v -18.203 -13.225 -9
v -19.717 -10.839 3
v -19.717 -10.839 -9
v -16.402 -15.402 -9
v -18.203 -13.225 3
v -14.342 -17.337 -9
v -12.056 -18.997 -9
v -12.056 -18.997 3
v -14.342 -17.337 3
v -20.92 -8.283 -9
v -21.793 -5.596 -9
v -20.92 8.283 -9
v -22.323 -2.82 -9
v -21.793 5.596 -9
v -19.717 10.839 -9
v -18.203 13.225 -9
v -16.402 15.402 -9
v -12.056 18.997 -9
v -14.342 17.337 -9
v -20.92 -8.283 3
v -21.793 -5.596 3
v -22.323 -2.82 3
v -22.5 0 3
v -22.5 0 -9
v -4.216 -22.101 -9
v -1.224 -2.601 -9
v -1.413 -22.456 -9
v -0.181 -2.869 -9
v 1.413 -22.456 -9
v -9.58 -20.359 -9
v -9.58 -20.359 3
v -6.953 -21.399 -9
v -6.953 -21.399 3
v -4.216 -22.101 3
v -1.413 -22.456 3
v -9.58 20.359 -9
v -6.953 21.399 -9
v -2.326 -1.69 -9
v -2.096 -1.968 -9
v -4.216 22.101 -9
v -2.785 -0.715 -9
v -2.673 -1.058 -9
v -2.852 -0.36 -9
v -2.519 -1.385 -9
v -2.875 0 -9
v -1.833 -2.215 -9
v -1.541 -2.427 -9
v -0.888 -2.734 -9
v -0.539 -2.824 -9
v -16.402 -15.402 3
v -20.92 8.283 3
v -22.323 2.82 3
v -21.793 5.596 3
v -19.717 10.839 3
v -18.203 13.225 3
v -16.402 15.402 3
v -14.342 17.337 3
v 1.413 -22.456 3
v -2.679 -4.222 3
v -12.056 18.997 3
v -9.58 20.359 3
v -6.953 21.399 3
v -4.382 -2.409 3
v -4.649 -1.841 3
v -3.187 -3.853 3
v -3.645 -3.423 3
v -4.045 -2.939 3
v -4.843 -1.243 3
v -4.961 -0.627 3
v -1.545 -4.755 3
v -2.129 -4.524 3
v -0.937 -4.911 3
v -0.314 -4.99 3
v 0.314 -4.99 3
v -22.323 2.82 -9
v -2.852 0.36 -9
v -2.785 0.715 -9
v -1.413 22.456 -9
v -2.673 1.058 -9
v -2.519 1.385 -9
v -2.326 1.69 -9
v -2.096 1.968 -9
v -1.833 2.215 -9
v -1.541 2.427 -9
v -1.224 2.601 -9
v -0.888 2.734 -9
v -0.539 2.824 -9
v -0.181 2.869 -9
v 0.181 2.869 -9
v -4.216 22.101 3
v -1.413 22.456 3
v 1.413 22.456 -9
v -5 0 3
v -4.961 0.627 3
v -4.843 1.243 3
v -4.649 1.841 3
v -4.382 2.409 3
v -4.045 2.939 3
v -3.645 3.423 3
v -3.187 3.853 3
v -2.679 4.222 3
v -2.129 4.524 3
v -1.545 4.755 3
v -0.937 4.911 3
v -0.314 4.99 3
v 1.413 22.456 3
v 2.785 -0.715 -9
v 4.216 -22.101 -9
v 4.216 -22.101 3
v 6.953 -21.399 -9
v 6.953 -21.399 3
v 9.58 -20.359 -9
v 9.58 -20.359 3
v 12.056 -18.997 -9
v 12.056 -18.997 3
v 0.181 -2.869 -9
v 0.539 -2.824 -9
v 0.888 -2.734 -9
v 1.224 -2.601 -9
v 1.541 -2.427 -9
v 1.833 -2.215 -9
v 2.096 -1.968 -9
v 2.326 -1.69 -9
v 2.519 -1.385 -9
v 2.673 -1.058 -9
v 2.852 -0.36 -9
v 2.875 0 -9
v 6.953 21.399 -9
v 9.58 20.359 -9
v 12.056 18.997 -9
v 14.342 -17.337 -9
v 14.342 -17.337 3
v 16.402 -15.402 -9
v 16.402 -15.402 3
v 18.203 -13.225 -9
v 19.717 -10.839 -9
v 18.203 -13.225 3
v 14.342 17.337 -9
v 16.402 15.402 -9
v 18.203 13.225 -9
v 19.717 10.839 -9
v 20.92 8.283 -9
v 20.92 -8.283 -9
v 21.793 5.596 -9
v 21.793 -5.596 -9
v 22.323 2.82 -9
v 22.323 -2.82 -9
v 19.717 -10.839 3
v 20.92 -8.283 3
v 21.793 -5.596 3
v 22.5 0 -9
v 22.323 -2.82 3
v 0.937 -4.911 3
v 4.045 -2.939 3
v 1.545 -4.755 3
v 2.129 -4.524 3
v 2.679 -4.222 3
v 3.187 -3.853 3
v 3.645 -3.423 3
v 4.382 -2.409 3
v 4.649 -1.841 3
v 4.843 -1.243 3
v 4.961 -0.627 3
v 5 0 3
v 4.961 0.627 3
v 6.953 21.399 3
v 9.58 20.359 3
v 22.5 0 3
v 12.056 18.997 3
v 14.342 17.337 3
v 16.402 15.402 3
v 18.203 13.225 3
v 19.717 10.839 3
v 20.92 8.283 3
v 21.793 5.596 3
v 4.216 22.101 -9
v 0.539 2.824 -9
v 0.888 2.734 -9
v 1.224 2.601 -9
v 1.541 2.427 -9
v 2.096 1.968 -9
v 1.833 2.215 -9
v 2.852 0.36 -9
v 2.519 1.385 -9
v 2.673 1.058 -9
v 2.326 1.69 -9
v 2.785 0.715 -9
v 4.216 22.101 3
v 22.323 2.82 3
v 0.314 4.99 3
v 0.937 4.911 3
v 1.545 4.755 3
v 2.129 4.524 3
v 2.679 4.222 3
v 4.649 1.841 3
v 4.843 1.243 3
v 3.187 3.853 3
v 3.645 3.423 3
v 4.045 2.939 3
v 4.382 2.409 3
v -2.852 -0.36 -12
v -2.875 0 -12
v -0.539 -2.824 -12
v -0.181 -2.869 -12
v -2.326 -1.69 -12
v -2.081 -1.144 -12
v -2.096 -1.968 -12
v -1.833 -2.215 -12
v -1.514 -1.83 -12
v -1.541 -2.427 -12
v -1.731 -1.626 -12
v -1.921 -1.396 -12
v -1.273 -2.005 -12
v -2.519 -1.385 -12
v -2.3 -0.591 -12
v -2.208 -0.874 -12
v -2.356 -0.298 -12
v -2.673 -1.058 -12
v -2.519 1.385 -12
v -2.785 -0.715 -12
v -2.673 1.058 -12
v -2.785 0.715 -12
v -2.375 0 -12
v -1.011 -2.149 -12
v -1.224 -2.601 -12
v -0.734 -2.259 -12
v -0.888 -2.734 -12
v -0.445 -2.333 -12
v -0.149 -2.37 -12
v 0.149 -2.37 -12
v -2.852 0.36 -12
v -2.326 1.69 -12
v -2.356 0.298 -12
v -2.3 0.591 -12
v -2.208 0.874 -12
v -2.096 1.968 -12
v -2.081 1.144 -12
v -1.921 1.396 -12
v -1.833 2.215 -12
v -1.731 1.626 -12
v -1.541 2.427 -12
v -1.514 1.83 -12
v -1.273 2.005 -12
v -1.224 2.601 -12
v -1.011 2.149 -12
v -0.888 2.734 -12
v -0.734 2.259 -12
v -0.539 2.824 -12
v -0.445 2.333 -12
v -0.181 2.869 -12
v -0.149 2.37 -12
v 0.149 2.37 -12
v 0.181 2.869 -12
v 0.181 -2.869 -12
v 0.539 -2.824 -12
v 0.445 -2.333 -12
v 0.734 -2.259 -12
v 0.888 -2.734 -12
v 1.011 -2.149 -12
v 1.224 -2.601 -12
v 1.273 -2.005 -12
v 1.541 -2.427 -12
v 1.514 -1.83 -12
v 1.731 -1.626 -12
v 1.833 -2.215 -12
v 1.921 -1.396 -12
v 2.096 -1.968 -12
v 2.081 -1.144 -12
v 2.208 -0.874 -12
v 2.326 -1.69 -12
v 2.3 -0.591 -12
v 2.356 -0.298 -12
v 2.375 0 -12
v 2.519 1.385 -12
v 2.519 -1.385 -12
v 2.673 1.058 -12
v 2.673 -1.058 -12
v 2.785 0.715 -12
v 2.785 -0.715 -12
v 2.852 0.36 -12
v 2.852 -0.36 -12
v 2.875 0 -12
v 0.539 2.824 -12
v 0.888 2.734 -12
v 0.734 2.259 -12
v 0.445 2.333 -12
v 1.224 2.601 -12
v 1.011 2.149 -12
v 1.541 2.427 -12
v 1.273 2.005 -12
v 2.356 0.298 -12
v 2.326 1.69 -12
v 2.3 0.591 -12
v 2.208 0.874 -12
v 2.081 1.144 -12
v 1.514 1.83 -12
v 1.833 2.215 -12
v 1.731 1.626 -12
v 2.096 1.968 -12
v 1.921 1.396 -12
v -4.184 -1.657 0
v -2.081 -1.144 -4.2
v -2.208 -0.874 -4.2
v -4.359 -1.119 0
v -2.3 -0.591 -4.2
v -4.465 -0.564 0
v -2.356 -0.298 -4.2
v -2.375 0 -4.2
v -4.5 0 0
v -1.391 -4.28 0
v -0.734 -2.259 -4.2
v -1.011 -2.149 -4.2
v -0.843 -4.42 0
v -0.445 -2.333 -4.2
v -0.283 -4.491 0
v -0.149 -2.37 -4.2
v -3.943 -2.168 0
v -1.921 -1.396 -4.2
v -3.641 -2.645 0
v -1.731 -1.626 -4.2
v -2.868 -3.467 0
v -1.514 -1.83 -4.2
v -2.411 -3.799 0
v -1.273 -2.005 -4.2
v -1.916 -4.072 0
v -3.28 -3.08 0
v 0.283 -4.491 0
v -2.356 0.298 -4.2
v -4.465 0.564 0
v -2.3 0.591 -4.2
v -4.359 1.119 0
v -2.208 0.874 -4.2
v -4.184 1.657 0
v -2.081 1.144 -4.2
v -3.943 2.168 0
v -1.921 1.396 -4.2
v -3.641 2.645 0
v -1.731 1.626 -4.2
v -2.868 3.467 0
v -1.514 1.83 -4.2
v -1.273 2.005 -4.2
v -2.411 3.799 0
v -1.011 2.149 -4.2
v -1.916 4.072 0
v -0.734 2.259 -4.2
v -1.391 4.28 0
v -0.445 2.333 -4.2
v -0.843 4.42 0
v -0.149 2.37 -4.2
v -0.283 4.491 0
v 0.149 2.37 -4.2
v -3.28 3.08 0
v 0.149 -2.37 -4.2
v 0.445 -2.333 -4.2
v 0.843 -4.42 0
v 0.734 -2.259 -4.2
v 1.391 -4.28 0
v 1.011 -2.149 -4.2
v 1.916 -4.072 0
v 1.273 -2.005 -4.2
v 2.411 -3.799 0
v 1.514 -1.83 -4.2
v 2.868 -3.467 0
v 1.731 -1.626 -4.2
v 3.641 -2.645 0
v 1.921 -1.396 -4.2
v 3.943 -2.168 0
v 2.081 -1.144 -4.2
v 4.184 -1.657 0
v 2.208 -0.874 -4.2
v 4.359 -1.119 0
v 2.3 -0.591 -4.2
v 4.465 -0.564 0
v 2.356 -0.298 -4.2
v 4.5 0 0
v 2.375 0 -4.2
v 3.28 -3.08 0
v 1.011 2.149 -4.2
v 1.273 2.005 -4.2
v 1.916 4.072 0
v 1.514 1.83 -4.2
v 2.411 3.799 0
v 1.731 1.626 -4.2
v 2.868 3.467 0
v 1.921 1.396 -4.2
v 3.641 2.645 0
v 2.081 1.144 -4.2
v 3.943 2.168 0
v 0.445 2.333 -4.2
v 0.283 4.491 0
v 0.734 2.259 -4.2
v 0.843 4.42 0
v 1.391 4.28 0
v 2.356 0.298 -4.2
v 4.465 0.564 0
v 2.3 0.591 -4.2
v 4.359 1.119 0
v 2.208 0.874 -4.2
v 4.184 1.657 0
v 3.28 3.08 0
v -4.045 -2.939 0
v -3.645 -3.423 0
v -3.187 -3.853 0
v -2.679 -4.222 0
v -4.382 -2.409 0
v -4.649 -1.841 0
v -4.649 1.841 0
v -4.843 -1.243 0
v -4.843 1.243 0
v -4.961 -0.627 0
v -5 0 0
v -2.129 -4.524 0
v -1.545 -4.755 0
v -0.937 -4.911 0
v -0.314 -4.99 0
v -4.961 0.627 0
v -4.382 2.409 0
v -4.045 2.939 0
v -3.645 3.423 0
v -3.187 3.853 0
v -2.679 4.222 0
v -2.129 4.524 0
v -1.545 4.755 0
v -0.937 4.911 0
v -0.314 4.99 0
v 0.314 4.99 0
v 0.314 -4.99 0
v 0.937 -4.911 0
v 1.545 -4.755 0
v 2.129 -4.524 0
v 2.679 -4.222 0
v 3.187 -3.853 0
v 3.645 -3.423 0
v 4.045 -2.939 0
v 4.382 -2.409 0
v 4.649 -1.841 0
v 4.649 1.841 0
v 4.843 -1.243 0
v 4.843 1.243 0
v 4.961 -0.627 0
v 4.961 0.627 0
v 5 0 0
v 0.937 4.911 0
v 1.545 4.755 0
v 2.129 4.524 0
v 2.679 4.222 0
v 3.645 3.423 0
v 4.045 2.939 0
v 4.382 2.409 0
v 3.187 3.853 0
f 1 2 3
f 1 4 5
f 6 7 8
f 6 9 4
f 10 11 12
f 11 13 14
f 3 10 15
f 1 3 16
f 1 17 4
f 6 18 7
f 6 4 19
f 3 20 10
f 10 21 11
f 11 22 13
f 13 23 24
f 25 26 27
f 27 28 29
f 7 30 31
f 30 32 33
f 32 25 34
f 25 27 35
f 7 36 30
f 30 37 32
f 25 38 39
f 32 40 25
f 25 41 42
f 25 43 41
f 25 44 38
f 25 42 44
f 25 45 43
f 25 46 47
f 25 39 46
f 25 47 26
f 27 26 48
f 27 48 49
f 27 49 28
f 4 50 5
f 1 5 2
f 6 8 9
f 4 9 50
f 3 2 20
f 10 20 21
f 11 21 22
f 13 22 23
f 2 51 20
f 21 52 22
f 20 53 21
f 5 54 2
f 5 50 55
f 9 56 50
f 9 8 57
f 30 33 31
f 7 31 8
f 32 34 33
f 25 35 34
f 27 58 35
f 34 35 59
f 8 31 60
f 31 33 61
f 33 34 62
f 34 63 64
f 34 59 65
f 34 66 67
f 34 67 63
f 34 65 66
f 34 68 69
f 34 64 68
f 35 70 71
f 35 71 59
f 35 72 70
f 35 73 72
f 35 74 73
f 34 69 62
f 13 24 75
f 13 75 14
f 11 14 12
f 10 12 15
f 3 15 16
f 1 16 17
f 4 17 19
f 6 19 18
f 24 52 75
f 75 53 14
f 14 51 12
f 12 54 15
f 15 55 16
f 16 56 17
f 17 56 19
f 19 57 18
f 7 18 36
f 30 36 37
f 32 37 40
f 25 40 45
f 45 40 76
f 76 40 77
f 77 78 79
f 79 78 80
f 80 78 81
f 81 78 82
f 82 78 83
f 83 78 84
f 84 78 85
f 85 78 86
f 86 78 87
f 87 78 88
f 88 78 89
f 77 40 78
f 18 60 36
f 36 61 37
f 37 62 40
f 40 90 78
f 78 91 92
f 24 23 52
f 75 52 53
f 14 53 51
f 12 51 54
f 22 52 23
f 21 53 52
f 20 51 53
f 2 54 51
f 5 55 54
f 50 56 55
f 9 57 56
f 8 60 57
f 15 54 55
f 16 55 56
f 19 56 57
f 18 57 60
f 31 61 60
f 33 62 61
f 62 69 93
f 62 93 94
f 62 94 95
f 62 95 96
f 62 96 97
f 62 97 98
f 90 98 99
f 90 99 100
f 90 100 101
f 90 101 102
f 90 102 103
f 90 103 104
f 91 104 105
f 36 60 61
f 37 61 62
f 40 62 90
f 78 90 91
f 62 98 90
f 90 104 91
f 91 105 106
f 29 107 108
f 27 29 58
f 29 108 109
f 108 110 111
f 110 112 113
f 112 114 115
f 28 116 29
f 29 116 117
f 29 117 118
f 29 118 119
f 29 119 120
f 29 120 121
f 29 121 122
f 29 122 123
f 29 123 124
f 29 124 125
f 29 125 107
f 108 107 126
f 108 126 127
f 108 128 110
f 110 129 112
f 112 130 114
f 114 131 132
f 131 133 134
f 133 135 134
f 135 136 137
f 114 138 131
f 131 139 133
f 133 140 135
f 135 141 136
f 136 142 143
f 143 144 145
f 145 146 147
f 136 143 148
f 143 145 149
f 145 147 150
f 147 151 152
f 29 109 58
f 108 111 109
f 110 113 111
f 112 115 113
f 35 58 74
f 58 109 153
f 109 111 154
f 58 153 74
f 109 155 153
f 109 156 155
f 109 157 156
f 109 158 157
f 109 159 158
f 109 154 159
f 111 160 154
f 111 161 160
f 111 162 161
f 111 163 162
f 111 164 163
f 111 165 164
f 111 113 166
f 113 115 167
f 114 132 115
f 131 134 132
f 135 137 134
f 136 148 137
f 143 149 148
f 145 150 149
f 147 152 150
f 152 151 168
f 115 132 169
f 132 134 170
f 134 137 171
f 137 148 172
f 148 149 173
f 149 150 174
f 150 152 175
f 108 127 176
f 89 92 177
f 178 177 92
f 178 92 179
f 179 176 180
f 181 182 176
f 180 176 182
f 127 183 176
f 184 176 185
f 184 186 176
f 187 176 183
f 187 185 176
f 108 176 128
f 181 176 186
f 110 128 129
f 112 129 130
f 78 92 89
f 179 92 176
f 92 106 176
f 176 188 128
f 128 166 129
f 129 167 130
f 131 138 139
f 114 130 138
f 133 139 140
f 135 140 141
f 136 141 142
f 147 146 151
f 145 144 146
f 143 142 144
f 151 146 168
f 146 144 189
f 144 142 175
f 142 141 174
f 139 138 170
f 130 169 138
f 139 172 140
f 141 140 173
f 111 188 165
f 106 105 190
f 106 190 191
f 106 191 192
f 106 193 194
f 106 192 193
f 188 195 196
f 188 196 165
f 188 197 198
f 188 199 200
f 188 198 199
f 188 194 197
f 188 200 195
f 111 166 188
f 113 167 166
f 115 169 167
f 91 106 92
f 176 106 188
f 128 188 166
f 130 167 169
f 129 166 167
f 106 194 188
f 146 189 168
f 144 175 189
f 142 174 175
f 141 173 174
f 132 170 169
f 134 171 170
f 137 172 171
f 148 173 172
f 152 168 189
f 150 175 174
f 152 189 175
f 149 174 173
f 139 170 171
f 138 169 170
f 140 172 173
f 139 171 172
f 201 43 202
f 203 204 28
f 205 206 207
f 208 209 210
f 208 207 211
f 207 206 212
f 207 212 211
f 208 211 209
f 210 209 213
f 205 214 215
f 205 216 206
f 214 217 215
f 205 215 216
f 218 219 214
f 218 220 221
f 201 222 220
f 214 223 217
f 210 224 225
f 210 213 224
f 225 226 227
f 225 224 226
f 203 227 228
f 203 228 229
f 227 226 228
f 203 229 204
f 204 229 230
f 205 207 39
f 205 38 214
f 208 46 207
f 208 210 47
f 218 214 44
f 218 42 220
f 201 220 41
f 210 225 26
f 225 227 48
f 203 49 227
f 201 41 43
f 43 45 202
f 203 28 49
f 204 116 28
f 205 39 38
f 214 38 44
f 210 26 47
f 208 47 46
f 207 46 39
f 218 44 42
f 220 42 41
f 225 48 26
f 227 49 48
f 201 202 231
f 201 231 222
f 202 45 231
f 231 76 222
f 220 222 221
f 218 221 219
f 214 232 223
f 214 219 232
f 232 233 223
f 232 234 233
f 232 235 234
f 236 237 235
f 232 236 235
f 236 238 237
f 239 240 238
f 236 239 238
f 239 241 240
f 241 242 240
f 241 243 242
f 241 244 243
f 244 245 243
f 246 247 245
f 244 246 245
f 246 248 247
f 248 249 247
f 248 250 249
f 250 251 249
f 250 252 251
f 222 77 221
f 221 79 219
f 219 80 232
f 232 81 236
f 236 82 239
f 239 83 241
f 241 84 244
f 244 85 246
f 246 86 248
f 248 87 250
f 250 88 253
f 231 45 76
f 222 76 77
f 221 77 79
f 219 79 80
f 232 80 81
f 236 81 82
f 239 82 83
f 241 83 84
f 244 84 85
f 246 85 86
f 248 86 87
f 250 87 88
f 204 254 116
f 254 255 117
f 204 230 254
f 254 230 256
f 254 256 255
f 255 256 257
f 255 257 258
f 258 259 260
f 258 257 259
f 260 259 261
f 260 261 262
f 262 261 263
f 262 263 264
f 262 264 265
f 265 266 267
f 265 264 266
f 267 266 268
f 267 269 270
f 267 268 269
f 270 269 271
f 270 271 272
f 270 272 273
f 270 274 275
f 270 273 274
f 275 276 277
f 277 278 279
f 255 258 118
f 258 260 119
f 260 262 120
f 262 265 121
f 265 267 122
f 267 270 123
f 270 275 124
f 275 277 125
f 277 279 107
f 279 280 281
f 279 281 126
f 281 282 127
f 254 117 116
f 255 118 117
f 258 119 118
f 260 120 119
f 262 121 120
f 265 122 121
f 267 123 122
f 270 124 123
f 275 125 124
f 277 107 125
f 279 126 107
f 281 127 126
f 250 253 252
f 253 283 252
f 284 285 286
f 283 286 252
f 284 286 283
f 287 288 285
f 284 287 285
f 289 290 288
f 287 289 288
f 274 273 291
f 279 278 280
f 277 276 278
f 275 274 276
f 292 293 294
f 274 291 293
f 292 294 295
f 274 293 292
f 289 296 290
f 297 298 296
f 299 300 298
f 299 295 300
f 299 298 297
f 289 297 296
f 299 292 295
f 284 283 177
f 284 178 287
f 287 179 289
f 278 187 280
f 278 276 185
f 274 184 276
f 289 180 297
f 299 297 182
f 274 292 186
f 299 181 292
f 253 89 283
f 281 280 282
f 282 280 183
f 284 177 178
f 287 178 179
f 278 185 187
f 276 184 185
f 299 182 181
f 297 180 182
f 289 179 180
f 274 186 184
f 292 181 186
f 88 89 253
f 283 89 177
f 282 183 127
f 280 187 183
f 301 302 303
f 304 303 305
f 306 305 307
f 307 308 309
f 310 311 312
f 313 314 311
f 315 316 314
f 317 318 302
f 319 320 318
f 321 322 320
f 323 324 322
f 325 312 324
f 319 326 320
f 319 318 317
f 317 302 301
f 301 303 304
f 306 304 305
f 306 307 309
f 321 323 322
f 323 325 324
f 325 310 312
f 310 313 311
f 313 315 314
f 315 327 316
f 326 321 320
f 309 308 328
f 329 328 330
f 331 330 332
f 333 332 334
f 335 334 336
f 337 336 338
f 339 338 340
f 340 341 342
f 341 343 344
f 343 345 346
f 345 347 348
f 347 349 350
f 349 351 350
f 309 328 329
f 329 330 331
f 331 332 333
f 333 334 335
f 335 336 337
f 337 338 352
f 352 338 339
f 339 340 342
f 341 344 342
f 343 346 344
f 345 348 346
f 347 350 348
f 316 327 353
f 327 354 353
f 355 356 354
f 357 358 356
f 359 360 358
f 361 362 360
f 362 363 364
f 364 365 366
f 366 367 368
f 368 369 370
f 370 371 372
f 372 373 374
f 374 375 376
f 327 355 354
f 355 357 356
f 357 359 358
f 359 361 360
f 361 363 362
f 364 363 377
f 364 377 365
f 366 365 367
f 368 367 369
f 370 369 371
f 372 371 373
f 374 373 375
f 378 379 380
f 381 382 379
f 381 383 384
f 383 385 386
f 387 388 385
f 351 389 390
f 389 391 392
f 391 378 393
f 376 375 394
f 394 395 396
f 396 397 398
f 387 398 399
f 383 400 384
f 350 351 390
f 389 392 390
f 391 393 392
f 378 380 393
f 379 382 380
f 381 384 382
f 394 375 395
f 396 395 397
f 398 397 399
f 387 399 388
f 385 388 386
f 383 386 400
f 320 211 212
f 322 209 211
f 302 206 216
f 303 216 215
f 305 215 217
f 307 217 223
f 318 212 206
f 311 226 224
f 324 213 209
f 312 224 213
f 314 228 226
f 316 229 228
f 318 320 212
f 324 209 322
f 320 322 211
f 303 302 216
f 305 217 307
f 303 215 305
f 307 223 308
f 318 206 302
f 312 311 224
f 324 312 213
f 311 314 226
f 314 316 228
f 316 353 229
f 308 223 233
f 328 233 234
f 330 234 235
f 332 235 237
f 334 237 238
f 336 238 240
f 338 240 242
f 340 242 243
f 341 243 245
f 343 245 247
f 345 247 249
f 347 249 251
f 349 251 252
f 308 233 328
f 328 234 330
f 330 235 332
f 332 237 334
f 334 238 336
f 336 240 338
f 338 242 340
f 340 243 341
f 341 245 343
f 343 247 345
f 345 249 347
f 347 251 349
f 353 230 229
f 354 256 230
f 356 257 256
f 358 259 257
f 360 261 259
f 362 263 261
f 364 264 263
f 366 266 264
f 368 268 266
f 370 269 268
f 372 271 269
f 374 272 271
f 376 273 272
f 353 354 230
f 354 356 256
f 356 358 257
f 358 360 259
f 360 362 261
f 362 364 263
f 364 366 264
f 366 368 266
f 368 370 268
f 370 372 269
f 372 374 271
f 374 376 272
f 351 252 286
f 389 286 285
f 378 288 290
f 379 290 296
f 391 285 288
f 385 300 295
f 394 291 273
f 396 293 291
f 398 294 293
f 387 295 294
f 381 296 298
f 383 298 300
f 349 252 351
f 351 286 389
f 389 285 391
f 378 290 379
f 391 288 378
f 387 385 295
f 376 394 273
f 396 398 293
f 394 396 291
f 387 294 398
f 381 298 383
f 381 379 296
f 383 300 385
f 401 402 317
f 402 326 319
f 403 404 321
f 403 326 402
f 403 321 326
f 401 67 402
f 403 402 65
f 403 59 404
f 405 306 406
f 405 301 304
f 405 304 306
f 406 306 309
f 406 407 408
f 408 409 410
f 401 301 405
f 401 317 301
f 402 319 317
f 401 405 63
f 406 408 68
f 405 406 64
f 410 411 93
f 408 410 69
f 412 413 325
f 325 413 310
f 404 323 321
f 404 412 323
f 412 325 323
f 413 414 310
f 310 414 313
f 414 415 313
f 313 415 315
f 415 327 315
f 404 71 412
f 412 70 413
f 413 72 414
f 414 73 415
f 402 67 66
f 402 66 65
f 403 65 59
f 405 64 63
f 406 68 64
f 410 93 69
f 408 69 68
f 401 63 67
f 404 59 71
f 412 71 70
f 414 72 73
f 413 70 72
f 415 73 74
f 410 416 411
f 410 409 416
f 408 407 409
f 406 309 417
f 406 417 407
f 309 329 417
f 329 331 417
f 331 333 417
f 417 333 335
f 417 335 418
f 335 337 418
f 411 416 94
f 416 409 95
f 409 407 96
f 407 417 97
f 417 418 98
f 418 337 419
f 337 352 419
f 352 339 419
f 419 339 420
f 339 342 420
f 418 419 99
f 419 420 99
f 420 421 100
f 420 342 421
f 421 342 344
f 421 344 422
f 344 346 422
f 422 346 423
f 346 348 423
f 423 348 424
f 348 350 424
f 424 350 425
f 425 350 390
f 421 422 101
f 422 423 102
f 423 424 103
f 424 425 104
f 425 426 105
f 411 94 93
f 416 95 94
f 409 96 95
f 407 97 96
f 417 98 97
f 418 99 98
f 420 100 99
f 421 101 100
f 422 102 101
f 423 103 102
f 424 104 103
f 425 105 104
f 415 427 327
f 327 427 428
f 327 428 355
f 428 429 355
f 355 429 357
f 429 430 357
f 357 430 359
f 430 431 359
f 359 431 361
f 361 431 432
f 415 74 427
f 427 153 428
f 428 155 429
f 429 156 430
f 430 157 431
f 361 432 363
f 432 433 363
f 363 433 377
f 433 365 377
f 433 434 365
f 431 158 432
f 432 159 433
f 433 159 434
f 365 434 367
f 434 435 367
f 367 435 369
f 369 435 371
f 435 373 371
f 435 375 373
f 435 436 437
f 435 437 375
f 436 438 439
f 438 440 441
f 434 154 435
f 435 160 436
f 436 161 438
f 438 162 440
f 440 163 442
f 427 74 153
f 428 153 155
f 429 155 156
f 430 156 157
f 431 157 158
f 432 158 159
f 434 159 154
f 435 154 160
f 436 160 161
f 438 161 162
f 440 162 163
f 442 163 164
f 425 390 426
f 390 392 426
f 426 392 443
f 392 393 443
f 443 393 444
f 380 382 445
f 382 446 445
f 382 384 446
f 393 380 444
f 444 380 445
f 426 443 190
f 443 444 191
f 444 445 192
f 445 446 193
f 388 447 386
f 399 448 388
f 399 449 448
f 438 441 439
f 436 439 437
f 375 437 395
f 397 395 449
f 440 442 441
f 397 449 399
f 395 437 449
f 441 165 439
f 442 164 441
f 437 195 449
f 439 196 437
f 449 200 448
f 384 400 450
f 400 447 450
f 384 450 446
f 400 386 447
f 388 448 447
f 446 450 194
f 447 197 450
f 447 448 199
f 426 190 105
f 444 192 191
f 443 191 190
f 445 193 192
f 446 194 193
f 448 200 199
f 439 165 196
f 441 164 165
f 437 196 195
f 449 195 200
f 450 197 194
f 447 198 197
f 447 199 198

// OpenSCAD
$fn = 50;


difference() {
	union() {
		translate(v = [0, 0, -9.0000000000]) {
			cylinder(h = 12, r = 22.5000000000);
		}
		#translate(v = [0, 0, -12.0000000000]) {
			cylinder(h = 12, r = 2.8750000000);
		}
	}
	union() {
		translate(v = [0, 0, 0]) {
			rotate(a = [0, 0, 0]) {
				difference() {
					union() {
						translate(v = [0, 0, -12.0000000000]) {
							cylinder(h = 12, r = 2.2500000000);
						}
						translate(v = [0, 0, -4.2000000000]) {
							cylinder(h = 4.2000000000, r1 = 2.3750000000, r2 = 4.5000000000);
						}
						translate(v = [0, 0, -12.0000000000]) {
							cylinder(h = 12, r = 2.3750000000);
						}
						translate(v = [0, 0, -12.0000000000]) {
							cylinder(h = 12, r = 2.2500000000);
						}
					}
					union();
				}
			}
		}
		#cylinder(h = 3, r = 5.0000000000);
	}
}
